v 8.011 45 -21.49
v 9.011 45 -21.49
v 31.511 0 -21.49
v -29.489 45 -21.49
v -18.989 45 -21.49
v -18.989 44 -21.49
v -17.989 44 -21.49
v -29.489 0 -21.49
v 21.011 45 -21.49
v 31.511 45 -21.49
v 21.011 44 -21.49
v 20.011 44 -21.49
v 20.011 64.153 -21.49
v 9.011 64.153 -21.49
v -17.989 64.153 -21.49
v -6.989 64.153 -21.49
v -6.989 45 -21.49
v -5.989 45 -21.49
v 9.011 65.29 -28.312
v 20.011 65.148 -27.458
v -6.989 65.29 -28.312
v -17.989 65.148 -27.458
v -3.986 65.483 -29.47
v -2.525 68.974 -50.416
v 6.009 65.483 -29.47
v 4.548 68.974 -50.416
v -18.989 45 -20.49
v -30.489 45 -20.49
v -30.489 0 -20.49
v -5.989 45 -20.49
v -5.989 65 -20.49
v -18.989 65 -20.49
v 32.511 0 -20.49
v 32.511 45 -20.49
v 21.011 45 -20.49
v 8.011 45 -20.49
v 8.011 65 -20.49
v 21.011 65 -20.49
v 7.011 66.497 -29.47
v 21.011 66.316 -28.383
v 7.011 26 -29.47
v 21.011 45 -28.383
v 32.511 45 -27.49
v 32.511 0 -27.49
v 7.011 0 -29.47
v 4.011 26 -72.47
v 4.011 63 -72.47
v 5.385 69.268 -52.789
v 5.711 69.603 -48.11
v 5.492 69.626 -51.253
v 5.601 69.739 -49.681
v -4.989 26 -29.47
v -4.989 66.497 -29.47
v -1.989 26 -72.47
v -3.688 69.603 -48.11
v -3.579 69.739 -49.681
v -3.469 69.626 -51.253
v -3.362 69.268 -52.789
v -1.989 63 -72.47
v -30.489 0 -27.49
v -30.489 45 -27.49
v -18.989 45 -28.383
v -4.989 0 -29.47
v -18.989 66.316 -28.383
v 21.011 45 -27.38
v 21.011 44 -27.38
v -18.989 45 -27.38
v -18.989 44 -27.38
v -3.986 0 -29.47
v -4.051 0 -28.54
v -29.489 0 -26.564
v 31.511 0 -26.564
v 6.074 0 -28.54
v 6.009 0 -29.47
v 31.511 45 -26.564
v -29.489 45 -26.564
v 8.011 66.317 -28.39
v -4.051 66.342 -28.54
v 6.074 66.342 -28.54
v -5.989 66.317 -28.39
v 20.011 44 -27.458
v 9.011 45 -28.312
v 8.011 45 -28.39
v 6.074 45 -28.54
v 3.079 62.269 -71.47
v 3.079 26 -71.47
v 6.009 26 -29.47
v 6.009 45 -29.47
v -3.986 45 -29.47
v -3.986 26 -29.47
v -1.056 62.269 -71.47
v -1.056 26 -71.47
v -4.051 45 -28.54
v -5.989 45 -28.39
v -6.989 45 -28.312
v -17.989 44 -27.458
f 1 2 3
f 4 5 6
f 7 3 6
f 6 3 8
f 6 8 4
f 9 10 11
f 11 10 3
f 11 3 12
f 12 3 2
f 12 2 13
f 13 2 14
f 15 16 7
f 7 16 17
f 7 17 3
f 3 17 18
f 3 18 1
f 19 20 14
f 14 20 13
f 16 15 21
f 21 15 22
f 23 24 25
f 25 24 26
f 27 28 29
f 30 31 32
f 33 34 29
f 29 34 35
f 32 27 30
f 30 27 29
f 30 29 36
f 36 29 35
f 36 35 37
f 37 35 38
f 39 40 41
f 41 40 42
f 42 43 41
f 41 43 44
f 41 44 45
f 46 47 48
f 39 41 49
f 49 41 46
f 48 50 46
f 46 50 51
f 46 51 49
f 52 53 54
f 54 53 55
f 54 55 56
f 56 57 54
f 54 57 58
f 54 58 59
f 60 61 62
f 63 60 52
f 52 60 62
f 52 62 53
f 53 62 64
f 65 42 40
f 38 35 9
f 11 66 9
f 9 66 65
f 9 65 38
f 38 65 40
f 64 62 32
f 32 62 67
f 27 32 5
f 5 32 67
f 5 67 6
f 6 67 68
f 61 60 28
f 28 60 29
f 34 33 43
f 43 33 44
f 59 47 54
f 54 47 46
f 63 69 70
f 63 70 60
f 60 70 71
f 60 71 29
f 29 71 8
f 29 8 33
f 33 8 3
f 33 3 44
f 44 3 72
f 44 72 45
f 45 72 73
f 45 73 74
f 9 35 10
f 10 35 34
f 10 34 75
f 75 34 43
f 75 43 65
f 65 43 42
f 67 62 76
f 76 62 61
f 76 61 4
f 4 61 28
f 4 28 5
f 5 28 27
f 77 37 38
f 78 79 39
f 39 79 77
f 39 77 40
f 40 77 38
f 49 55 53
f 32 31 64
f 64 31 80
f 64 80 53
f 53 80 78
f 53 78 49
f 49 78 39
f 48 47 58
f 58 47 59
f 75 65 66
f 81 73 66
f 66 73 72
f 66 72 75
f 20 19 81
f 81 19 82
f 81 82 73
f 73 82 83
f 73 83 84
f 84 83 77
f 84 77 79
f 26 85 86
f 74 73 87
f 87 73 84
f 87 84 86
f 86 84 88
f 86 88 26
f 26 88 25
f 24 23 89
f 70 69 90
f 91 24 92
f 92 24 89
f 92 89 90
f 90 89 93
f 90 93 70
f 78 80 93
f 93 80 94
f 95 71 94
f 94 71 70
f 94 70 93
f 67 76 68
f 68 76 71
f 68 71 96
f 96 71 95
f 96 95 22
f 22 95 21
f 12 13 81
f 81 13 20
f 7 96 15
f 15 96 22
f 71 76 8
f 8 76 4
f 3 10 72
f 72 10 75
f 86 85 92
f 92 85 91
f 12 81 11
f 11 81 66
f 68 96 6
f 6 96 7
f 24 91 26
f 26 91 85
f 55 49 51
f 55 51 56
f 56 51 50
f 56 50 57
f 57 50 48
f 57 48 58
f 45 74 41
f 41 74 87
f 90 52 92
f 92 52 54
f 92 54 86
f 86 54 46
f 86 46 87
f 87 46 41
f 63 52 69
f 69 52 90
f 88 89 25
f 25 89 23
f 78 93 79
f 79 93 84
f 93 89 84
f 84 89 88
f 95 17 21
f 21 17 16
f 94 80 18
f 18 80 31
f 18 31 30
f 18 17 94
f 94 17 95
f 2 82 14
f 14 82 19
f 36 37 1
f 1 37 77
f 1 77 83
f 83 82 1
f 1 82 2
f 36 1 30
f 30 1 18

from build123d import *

# Parameters (mm, degrees)
BOSS_EXTRUDE1_DEPTH     = 70
CUT_EXTRUDE1_DEPTH      = 25
CUT_EXTRUDE4_DEPTH      = 24
CUT_EXTRUDE4_DEPTH_BACK = 27
SHELL2_T                = -1
FILLET1_R               = 10
CUT_EXTRUDE3_DEPTH      = 26
CUT_EXTRUDE2_DEPTH      = 1
BOSS_EXTRUDE4_DEPTH     = 21.5
BOSS_EXTRUDE5_DEPTH     = 22
CUT_EXTRUDE8_DEPTH      = 20
CUT_EXTRUDE10_DEPTH     = 34


with BuildPart() as part:
    # Sketch2 → Boss-Extrude1 (new body)
    with BuildSketch(Plane(origin=(0, 0, 0), x_dir=(1, 0, 0), z_dir=(0, 1, 0))):
        Polygon((-18.988562983, 28.382917999), (-4.988562983, 29.470238095), (-1.988562983, 72.470238095), (4.011437017, 72.470238095), (7.011437017, 29.470238095), (32.511437017, 27.489762205), (32.511437017, 20.489762205), (-30.488562983, 20.489762205), (-30.488562983, 27.489762205), align=None)
    extrude(amount=BOSS_EXTRUDE1_DEPTH)

    # Sketch3 → Cut-Extrude1 (cut)
    with BuildSketch(Plane(origin=(0, 70, 0), x_dir=(1, 0, 0), z_dir=(0, 1, 0))):
        Polygon((-30.488562983, 27.489762205), (-30.488562983, 20.489762205), (-18.988562983, 20.489762205), (-18.988562983, 28.382917999), align=None)
        Polygon((21.011437017, 20.489762205), (32.511437017, 20.489762205), (32.511437017, 27.489762205), (21.011437017, 28.382917999), align=None)
    extrude(amount=-CUT_EXTRUDE1_DEPTH, mode=Mode.SUBTRACT)

    # Sketch7 → Cut-Extrude4 (cut, two sides: drawn at the far end of the back side and taken through both)
    with BuildSketch(Plane(origin=(0, 0, 0), x_dir=(0, 0, -1), z_dir=(1, 0, 0)).offset(-CUT_EXTRUDE4_DEPTH_BACK)):
        Polygon((20.489762205, 65), (50.489762205, 70), (20.489762205, 70), align=None)
        Polygon((72.470238095, 63), (50.489762205, 70), (72.470238095, 70), align=None)
    extrude(amount=CUT_EXTRUDE4_DEPTH + CUT_EXTRUDE4_DEPTH_BACK, mode=Mode.SUBTRACT)

    # Shell2
    shell2_openings = [part.faces().sort_by_distance(p)[0] for p in [
        (1.011437017, 0, -34.888692943),
    ]]
    offset(amount=SHELL2_T, openings=shell2_openings, kind=Kind.INTERSECTION)

    # Fillet1
    fillet1_edges = [part.edges().sort_by_distance(p)[0] for p in [
        (1.011437017, 70, -50.489762205),
    ]]
    fillet(fillet1_edges, radius=FILLET1_R)

    # Sketch6 → Cut-Extrude3 (cut)
    with BuildSketch(Plane.XZ):
        Polygon((-4.988562983, -29.470238095), (7.011437017, -29.470238095), (4.011437017, -72.470238095), (-1.988562983, -72.470238095), align=None)
    extrude(amount=-CUT_EXTRUDE3_DEPTH, mode=Mode.SUBTRACT)

    # Sketch4 → Cut-Extrude2 (cut)
    with BuildSketch(Plane(origin=(0, 45, 0), x_dir=(1, 0, 0), z_dir=(0, 1, 0))):
        Polygon((31.511437017, 21.489762205), (21.011437017, 21.489762205), (21.011437017, 27.379906551), (31.511437017, 26.564416479), align=None)
        Polygon((-29.488562983, 21.489762205), (-29.488562983, 26.564416479), (-18.988562983, 27.379906551), (-18.988562983, 21.489762205), align=None)
    extrude(amount=-CUT_EXTRUDE2_DEPTH, mode=Mode.SUBTRACT)

    # Sketch16 → Boss-Extrude4 (add)
    with BuildSketch(Plane(origin=(0, 45, 0), x_dir=(-1, 0, 0), z_dir=(0, -1, 0))):
        Polygon((-6.009006224, 29.470238095), (3.986132189, 29.470238095), (4.051029671, 28.540040848), (-6.073903706, 28.540040848), align=None)
    extrude(amount=-BOSS_EXTRUDE4_DEPTH)

    # Sketch19 → Boss-Extrude5 (add)
    with BuildSketch(Plane(origin=(0, 45, 0), x_dir=(-1, 0, 0), z_dir=(0, -1, 0))):
        Polygon((5.988562983, 28.389560926), (5.988562983, 21.489762205), (6.988562983, 21.489762205), (6.988562983, 28.311895205), align=None)
        Polygon((-8.011437017, 21.489762205), (-8.011437017, 28.389560926), (-9.011437017, 28.311895205), (-9.011437017, 21.489762205), align=None)
    extrude(amount=-BOSS_EXTRUDE5_DEPTH)

    # Sketch20 → Cut-Extrude8 (cut, symmetric)
    with BuildSketch(Plane(origin=(-5.988562983, 0, 0), x_dir=(0, 0, -1), z_dir=(1, 0, 0))):
        Polygon((21.489762205, 67), (21.489762205, 65.166666667), (30.609777223, 66.68666917), (30.609777223, 67), align=None)
    extrude(amount=CUT_EXTRUDE8_DEPTH, both=True, mode=Mode.SUBTRACT)

    # Sketch22 → Cut-Extrude10 (cut)
    with BuildSketch(Plane(origin=(0, 45, 0), x_dir=(-1, 0, 0), z_dir=(0, -1, 0))):
        Polygon((-8.011437017, 28.389560926), (-8.011437017, 20.489762205), (5.988562983, 20.489762205), (5.988562983, 28.389560926), (4.051029671, 28.540040848), (-6.073903706, 28.540040848), align=None)
    extrude(amount=-CUT_EXTRUDE10_DEPTH, mode=Mode.SUBTRACT)


solid = part.part
